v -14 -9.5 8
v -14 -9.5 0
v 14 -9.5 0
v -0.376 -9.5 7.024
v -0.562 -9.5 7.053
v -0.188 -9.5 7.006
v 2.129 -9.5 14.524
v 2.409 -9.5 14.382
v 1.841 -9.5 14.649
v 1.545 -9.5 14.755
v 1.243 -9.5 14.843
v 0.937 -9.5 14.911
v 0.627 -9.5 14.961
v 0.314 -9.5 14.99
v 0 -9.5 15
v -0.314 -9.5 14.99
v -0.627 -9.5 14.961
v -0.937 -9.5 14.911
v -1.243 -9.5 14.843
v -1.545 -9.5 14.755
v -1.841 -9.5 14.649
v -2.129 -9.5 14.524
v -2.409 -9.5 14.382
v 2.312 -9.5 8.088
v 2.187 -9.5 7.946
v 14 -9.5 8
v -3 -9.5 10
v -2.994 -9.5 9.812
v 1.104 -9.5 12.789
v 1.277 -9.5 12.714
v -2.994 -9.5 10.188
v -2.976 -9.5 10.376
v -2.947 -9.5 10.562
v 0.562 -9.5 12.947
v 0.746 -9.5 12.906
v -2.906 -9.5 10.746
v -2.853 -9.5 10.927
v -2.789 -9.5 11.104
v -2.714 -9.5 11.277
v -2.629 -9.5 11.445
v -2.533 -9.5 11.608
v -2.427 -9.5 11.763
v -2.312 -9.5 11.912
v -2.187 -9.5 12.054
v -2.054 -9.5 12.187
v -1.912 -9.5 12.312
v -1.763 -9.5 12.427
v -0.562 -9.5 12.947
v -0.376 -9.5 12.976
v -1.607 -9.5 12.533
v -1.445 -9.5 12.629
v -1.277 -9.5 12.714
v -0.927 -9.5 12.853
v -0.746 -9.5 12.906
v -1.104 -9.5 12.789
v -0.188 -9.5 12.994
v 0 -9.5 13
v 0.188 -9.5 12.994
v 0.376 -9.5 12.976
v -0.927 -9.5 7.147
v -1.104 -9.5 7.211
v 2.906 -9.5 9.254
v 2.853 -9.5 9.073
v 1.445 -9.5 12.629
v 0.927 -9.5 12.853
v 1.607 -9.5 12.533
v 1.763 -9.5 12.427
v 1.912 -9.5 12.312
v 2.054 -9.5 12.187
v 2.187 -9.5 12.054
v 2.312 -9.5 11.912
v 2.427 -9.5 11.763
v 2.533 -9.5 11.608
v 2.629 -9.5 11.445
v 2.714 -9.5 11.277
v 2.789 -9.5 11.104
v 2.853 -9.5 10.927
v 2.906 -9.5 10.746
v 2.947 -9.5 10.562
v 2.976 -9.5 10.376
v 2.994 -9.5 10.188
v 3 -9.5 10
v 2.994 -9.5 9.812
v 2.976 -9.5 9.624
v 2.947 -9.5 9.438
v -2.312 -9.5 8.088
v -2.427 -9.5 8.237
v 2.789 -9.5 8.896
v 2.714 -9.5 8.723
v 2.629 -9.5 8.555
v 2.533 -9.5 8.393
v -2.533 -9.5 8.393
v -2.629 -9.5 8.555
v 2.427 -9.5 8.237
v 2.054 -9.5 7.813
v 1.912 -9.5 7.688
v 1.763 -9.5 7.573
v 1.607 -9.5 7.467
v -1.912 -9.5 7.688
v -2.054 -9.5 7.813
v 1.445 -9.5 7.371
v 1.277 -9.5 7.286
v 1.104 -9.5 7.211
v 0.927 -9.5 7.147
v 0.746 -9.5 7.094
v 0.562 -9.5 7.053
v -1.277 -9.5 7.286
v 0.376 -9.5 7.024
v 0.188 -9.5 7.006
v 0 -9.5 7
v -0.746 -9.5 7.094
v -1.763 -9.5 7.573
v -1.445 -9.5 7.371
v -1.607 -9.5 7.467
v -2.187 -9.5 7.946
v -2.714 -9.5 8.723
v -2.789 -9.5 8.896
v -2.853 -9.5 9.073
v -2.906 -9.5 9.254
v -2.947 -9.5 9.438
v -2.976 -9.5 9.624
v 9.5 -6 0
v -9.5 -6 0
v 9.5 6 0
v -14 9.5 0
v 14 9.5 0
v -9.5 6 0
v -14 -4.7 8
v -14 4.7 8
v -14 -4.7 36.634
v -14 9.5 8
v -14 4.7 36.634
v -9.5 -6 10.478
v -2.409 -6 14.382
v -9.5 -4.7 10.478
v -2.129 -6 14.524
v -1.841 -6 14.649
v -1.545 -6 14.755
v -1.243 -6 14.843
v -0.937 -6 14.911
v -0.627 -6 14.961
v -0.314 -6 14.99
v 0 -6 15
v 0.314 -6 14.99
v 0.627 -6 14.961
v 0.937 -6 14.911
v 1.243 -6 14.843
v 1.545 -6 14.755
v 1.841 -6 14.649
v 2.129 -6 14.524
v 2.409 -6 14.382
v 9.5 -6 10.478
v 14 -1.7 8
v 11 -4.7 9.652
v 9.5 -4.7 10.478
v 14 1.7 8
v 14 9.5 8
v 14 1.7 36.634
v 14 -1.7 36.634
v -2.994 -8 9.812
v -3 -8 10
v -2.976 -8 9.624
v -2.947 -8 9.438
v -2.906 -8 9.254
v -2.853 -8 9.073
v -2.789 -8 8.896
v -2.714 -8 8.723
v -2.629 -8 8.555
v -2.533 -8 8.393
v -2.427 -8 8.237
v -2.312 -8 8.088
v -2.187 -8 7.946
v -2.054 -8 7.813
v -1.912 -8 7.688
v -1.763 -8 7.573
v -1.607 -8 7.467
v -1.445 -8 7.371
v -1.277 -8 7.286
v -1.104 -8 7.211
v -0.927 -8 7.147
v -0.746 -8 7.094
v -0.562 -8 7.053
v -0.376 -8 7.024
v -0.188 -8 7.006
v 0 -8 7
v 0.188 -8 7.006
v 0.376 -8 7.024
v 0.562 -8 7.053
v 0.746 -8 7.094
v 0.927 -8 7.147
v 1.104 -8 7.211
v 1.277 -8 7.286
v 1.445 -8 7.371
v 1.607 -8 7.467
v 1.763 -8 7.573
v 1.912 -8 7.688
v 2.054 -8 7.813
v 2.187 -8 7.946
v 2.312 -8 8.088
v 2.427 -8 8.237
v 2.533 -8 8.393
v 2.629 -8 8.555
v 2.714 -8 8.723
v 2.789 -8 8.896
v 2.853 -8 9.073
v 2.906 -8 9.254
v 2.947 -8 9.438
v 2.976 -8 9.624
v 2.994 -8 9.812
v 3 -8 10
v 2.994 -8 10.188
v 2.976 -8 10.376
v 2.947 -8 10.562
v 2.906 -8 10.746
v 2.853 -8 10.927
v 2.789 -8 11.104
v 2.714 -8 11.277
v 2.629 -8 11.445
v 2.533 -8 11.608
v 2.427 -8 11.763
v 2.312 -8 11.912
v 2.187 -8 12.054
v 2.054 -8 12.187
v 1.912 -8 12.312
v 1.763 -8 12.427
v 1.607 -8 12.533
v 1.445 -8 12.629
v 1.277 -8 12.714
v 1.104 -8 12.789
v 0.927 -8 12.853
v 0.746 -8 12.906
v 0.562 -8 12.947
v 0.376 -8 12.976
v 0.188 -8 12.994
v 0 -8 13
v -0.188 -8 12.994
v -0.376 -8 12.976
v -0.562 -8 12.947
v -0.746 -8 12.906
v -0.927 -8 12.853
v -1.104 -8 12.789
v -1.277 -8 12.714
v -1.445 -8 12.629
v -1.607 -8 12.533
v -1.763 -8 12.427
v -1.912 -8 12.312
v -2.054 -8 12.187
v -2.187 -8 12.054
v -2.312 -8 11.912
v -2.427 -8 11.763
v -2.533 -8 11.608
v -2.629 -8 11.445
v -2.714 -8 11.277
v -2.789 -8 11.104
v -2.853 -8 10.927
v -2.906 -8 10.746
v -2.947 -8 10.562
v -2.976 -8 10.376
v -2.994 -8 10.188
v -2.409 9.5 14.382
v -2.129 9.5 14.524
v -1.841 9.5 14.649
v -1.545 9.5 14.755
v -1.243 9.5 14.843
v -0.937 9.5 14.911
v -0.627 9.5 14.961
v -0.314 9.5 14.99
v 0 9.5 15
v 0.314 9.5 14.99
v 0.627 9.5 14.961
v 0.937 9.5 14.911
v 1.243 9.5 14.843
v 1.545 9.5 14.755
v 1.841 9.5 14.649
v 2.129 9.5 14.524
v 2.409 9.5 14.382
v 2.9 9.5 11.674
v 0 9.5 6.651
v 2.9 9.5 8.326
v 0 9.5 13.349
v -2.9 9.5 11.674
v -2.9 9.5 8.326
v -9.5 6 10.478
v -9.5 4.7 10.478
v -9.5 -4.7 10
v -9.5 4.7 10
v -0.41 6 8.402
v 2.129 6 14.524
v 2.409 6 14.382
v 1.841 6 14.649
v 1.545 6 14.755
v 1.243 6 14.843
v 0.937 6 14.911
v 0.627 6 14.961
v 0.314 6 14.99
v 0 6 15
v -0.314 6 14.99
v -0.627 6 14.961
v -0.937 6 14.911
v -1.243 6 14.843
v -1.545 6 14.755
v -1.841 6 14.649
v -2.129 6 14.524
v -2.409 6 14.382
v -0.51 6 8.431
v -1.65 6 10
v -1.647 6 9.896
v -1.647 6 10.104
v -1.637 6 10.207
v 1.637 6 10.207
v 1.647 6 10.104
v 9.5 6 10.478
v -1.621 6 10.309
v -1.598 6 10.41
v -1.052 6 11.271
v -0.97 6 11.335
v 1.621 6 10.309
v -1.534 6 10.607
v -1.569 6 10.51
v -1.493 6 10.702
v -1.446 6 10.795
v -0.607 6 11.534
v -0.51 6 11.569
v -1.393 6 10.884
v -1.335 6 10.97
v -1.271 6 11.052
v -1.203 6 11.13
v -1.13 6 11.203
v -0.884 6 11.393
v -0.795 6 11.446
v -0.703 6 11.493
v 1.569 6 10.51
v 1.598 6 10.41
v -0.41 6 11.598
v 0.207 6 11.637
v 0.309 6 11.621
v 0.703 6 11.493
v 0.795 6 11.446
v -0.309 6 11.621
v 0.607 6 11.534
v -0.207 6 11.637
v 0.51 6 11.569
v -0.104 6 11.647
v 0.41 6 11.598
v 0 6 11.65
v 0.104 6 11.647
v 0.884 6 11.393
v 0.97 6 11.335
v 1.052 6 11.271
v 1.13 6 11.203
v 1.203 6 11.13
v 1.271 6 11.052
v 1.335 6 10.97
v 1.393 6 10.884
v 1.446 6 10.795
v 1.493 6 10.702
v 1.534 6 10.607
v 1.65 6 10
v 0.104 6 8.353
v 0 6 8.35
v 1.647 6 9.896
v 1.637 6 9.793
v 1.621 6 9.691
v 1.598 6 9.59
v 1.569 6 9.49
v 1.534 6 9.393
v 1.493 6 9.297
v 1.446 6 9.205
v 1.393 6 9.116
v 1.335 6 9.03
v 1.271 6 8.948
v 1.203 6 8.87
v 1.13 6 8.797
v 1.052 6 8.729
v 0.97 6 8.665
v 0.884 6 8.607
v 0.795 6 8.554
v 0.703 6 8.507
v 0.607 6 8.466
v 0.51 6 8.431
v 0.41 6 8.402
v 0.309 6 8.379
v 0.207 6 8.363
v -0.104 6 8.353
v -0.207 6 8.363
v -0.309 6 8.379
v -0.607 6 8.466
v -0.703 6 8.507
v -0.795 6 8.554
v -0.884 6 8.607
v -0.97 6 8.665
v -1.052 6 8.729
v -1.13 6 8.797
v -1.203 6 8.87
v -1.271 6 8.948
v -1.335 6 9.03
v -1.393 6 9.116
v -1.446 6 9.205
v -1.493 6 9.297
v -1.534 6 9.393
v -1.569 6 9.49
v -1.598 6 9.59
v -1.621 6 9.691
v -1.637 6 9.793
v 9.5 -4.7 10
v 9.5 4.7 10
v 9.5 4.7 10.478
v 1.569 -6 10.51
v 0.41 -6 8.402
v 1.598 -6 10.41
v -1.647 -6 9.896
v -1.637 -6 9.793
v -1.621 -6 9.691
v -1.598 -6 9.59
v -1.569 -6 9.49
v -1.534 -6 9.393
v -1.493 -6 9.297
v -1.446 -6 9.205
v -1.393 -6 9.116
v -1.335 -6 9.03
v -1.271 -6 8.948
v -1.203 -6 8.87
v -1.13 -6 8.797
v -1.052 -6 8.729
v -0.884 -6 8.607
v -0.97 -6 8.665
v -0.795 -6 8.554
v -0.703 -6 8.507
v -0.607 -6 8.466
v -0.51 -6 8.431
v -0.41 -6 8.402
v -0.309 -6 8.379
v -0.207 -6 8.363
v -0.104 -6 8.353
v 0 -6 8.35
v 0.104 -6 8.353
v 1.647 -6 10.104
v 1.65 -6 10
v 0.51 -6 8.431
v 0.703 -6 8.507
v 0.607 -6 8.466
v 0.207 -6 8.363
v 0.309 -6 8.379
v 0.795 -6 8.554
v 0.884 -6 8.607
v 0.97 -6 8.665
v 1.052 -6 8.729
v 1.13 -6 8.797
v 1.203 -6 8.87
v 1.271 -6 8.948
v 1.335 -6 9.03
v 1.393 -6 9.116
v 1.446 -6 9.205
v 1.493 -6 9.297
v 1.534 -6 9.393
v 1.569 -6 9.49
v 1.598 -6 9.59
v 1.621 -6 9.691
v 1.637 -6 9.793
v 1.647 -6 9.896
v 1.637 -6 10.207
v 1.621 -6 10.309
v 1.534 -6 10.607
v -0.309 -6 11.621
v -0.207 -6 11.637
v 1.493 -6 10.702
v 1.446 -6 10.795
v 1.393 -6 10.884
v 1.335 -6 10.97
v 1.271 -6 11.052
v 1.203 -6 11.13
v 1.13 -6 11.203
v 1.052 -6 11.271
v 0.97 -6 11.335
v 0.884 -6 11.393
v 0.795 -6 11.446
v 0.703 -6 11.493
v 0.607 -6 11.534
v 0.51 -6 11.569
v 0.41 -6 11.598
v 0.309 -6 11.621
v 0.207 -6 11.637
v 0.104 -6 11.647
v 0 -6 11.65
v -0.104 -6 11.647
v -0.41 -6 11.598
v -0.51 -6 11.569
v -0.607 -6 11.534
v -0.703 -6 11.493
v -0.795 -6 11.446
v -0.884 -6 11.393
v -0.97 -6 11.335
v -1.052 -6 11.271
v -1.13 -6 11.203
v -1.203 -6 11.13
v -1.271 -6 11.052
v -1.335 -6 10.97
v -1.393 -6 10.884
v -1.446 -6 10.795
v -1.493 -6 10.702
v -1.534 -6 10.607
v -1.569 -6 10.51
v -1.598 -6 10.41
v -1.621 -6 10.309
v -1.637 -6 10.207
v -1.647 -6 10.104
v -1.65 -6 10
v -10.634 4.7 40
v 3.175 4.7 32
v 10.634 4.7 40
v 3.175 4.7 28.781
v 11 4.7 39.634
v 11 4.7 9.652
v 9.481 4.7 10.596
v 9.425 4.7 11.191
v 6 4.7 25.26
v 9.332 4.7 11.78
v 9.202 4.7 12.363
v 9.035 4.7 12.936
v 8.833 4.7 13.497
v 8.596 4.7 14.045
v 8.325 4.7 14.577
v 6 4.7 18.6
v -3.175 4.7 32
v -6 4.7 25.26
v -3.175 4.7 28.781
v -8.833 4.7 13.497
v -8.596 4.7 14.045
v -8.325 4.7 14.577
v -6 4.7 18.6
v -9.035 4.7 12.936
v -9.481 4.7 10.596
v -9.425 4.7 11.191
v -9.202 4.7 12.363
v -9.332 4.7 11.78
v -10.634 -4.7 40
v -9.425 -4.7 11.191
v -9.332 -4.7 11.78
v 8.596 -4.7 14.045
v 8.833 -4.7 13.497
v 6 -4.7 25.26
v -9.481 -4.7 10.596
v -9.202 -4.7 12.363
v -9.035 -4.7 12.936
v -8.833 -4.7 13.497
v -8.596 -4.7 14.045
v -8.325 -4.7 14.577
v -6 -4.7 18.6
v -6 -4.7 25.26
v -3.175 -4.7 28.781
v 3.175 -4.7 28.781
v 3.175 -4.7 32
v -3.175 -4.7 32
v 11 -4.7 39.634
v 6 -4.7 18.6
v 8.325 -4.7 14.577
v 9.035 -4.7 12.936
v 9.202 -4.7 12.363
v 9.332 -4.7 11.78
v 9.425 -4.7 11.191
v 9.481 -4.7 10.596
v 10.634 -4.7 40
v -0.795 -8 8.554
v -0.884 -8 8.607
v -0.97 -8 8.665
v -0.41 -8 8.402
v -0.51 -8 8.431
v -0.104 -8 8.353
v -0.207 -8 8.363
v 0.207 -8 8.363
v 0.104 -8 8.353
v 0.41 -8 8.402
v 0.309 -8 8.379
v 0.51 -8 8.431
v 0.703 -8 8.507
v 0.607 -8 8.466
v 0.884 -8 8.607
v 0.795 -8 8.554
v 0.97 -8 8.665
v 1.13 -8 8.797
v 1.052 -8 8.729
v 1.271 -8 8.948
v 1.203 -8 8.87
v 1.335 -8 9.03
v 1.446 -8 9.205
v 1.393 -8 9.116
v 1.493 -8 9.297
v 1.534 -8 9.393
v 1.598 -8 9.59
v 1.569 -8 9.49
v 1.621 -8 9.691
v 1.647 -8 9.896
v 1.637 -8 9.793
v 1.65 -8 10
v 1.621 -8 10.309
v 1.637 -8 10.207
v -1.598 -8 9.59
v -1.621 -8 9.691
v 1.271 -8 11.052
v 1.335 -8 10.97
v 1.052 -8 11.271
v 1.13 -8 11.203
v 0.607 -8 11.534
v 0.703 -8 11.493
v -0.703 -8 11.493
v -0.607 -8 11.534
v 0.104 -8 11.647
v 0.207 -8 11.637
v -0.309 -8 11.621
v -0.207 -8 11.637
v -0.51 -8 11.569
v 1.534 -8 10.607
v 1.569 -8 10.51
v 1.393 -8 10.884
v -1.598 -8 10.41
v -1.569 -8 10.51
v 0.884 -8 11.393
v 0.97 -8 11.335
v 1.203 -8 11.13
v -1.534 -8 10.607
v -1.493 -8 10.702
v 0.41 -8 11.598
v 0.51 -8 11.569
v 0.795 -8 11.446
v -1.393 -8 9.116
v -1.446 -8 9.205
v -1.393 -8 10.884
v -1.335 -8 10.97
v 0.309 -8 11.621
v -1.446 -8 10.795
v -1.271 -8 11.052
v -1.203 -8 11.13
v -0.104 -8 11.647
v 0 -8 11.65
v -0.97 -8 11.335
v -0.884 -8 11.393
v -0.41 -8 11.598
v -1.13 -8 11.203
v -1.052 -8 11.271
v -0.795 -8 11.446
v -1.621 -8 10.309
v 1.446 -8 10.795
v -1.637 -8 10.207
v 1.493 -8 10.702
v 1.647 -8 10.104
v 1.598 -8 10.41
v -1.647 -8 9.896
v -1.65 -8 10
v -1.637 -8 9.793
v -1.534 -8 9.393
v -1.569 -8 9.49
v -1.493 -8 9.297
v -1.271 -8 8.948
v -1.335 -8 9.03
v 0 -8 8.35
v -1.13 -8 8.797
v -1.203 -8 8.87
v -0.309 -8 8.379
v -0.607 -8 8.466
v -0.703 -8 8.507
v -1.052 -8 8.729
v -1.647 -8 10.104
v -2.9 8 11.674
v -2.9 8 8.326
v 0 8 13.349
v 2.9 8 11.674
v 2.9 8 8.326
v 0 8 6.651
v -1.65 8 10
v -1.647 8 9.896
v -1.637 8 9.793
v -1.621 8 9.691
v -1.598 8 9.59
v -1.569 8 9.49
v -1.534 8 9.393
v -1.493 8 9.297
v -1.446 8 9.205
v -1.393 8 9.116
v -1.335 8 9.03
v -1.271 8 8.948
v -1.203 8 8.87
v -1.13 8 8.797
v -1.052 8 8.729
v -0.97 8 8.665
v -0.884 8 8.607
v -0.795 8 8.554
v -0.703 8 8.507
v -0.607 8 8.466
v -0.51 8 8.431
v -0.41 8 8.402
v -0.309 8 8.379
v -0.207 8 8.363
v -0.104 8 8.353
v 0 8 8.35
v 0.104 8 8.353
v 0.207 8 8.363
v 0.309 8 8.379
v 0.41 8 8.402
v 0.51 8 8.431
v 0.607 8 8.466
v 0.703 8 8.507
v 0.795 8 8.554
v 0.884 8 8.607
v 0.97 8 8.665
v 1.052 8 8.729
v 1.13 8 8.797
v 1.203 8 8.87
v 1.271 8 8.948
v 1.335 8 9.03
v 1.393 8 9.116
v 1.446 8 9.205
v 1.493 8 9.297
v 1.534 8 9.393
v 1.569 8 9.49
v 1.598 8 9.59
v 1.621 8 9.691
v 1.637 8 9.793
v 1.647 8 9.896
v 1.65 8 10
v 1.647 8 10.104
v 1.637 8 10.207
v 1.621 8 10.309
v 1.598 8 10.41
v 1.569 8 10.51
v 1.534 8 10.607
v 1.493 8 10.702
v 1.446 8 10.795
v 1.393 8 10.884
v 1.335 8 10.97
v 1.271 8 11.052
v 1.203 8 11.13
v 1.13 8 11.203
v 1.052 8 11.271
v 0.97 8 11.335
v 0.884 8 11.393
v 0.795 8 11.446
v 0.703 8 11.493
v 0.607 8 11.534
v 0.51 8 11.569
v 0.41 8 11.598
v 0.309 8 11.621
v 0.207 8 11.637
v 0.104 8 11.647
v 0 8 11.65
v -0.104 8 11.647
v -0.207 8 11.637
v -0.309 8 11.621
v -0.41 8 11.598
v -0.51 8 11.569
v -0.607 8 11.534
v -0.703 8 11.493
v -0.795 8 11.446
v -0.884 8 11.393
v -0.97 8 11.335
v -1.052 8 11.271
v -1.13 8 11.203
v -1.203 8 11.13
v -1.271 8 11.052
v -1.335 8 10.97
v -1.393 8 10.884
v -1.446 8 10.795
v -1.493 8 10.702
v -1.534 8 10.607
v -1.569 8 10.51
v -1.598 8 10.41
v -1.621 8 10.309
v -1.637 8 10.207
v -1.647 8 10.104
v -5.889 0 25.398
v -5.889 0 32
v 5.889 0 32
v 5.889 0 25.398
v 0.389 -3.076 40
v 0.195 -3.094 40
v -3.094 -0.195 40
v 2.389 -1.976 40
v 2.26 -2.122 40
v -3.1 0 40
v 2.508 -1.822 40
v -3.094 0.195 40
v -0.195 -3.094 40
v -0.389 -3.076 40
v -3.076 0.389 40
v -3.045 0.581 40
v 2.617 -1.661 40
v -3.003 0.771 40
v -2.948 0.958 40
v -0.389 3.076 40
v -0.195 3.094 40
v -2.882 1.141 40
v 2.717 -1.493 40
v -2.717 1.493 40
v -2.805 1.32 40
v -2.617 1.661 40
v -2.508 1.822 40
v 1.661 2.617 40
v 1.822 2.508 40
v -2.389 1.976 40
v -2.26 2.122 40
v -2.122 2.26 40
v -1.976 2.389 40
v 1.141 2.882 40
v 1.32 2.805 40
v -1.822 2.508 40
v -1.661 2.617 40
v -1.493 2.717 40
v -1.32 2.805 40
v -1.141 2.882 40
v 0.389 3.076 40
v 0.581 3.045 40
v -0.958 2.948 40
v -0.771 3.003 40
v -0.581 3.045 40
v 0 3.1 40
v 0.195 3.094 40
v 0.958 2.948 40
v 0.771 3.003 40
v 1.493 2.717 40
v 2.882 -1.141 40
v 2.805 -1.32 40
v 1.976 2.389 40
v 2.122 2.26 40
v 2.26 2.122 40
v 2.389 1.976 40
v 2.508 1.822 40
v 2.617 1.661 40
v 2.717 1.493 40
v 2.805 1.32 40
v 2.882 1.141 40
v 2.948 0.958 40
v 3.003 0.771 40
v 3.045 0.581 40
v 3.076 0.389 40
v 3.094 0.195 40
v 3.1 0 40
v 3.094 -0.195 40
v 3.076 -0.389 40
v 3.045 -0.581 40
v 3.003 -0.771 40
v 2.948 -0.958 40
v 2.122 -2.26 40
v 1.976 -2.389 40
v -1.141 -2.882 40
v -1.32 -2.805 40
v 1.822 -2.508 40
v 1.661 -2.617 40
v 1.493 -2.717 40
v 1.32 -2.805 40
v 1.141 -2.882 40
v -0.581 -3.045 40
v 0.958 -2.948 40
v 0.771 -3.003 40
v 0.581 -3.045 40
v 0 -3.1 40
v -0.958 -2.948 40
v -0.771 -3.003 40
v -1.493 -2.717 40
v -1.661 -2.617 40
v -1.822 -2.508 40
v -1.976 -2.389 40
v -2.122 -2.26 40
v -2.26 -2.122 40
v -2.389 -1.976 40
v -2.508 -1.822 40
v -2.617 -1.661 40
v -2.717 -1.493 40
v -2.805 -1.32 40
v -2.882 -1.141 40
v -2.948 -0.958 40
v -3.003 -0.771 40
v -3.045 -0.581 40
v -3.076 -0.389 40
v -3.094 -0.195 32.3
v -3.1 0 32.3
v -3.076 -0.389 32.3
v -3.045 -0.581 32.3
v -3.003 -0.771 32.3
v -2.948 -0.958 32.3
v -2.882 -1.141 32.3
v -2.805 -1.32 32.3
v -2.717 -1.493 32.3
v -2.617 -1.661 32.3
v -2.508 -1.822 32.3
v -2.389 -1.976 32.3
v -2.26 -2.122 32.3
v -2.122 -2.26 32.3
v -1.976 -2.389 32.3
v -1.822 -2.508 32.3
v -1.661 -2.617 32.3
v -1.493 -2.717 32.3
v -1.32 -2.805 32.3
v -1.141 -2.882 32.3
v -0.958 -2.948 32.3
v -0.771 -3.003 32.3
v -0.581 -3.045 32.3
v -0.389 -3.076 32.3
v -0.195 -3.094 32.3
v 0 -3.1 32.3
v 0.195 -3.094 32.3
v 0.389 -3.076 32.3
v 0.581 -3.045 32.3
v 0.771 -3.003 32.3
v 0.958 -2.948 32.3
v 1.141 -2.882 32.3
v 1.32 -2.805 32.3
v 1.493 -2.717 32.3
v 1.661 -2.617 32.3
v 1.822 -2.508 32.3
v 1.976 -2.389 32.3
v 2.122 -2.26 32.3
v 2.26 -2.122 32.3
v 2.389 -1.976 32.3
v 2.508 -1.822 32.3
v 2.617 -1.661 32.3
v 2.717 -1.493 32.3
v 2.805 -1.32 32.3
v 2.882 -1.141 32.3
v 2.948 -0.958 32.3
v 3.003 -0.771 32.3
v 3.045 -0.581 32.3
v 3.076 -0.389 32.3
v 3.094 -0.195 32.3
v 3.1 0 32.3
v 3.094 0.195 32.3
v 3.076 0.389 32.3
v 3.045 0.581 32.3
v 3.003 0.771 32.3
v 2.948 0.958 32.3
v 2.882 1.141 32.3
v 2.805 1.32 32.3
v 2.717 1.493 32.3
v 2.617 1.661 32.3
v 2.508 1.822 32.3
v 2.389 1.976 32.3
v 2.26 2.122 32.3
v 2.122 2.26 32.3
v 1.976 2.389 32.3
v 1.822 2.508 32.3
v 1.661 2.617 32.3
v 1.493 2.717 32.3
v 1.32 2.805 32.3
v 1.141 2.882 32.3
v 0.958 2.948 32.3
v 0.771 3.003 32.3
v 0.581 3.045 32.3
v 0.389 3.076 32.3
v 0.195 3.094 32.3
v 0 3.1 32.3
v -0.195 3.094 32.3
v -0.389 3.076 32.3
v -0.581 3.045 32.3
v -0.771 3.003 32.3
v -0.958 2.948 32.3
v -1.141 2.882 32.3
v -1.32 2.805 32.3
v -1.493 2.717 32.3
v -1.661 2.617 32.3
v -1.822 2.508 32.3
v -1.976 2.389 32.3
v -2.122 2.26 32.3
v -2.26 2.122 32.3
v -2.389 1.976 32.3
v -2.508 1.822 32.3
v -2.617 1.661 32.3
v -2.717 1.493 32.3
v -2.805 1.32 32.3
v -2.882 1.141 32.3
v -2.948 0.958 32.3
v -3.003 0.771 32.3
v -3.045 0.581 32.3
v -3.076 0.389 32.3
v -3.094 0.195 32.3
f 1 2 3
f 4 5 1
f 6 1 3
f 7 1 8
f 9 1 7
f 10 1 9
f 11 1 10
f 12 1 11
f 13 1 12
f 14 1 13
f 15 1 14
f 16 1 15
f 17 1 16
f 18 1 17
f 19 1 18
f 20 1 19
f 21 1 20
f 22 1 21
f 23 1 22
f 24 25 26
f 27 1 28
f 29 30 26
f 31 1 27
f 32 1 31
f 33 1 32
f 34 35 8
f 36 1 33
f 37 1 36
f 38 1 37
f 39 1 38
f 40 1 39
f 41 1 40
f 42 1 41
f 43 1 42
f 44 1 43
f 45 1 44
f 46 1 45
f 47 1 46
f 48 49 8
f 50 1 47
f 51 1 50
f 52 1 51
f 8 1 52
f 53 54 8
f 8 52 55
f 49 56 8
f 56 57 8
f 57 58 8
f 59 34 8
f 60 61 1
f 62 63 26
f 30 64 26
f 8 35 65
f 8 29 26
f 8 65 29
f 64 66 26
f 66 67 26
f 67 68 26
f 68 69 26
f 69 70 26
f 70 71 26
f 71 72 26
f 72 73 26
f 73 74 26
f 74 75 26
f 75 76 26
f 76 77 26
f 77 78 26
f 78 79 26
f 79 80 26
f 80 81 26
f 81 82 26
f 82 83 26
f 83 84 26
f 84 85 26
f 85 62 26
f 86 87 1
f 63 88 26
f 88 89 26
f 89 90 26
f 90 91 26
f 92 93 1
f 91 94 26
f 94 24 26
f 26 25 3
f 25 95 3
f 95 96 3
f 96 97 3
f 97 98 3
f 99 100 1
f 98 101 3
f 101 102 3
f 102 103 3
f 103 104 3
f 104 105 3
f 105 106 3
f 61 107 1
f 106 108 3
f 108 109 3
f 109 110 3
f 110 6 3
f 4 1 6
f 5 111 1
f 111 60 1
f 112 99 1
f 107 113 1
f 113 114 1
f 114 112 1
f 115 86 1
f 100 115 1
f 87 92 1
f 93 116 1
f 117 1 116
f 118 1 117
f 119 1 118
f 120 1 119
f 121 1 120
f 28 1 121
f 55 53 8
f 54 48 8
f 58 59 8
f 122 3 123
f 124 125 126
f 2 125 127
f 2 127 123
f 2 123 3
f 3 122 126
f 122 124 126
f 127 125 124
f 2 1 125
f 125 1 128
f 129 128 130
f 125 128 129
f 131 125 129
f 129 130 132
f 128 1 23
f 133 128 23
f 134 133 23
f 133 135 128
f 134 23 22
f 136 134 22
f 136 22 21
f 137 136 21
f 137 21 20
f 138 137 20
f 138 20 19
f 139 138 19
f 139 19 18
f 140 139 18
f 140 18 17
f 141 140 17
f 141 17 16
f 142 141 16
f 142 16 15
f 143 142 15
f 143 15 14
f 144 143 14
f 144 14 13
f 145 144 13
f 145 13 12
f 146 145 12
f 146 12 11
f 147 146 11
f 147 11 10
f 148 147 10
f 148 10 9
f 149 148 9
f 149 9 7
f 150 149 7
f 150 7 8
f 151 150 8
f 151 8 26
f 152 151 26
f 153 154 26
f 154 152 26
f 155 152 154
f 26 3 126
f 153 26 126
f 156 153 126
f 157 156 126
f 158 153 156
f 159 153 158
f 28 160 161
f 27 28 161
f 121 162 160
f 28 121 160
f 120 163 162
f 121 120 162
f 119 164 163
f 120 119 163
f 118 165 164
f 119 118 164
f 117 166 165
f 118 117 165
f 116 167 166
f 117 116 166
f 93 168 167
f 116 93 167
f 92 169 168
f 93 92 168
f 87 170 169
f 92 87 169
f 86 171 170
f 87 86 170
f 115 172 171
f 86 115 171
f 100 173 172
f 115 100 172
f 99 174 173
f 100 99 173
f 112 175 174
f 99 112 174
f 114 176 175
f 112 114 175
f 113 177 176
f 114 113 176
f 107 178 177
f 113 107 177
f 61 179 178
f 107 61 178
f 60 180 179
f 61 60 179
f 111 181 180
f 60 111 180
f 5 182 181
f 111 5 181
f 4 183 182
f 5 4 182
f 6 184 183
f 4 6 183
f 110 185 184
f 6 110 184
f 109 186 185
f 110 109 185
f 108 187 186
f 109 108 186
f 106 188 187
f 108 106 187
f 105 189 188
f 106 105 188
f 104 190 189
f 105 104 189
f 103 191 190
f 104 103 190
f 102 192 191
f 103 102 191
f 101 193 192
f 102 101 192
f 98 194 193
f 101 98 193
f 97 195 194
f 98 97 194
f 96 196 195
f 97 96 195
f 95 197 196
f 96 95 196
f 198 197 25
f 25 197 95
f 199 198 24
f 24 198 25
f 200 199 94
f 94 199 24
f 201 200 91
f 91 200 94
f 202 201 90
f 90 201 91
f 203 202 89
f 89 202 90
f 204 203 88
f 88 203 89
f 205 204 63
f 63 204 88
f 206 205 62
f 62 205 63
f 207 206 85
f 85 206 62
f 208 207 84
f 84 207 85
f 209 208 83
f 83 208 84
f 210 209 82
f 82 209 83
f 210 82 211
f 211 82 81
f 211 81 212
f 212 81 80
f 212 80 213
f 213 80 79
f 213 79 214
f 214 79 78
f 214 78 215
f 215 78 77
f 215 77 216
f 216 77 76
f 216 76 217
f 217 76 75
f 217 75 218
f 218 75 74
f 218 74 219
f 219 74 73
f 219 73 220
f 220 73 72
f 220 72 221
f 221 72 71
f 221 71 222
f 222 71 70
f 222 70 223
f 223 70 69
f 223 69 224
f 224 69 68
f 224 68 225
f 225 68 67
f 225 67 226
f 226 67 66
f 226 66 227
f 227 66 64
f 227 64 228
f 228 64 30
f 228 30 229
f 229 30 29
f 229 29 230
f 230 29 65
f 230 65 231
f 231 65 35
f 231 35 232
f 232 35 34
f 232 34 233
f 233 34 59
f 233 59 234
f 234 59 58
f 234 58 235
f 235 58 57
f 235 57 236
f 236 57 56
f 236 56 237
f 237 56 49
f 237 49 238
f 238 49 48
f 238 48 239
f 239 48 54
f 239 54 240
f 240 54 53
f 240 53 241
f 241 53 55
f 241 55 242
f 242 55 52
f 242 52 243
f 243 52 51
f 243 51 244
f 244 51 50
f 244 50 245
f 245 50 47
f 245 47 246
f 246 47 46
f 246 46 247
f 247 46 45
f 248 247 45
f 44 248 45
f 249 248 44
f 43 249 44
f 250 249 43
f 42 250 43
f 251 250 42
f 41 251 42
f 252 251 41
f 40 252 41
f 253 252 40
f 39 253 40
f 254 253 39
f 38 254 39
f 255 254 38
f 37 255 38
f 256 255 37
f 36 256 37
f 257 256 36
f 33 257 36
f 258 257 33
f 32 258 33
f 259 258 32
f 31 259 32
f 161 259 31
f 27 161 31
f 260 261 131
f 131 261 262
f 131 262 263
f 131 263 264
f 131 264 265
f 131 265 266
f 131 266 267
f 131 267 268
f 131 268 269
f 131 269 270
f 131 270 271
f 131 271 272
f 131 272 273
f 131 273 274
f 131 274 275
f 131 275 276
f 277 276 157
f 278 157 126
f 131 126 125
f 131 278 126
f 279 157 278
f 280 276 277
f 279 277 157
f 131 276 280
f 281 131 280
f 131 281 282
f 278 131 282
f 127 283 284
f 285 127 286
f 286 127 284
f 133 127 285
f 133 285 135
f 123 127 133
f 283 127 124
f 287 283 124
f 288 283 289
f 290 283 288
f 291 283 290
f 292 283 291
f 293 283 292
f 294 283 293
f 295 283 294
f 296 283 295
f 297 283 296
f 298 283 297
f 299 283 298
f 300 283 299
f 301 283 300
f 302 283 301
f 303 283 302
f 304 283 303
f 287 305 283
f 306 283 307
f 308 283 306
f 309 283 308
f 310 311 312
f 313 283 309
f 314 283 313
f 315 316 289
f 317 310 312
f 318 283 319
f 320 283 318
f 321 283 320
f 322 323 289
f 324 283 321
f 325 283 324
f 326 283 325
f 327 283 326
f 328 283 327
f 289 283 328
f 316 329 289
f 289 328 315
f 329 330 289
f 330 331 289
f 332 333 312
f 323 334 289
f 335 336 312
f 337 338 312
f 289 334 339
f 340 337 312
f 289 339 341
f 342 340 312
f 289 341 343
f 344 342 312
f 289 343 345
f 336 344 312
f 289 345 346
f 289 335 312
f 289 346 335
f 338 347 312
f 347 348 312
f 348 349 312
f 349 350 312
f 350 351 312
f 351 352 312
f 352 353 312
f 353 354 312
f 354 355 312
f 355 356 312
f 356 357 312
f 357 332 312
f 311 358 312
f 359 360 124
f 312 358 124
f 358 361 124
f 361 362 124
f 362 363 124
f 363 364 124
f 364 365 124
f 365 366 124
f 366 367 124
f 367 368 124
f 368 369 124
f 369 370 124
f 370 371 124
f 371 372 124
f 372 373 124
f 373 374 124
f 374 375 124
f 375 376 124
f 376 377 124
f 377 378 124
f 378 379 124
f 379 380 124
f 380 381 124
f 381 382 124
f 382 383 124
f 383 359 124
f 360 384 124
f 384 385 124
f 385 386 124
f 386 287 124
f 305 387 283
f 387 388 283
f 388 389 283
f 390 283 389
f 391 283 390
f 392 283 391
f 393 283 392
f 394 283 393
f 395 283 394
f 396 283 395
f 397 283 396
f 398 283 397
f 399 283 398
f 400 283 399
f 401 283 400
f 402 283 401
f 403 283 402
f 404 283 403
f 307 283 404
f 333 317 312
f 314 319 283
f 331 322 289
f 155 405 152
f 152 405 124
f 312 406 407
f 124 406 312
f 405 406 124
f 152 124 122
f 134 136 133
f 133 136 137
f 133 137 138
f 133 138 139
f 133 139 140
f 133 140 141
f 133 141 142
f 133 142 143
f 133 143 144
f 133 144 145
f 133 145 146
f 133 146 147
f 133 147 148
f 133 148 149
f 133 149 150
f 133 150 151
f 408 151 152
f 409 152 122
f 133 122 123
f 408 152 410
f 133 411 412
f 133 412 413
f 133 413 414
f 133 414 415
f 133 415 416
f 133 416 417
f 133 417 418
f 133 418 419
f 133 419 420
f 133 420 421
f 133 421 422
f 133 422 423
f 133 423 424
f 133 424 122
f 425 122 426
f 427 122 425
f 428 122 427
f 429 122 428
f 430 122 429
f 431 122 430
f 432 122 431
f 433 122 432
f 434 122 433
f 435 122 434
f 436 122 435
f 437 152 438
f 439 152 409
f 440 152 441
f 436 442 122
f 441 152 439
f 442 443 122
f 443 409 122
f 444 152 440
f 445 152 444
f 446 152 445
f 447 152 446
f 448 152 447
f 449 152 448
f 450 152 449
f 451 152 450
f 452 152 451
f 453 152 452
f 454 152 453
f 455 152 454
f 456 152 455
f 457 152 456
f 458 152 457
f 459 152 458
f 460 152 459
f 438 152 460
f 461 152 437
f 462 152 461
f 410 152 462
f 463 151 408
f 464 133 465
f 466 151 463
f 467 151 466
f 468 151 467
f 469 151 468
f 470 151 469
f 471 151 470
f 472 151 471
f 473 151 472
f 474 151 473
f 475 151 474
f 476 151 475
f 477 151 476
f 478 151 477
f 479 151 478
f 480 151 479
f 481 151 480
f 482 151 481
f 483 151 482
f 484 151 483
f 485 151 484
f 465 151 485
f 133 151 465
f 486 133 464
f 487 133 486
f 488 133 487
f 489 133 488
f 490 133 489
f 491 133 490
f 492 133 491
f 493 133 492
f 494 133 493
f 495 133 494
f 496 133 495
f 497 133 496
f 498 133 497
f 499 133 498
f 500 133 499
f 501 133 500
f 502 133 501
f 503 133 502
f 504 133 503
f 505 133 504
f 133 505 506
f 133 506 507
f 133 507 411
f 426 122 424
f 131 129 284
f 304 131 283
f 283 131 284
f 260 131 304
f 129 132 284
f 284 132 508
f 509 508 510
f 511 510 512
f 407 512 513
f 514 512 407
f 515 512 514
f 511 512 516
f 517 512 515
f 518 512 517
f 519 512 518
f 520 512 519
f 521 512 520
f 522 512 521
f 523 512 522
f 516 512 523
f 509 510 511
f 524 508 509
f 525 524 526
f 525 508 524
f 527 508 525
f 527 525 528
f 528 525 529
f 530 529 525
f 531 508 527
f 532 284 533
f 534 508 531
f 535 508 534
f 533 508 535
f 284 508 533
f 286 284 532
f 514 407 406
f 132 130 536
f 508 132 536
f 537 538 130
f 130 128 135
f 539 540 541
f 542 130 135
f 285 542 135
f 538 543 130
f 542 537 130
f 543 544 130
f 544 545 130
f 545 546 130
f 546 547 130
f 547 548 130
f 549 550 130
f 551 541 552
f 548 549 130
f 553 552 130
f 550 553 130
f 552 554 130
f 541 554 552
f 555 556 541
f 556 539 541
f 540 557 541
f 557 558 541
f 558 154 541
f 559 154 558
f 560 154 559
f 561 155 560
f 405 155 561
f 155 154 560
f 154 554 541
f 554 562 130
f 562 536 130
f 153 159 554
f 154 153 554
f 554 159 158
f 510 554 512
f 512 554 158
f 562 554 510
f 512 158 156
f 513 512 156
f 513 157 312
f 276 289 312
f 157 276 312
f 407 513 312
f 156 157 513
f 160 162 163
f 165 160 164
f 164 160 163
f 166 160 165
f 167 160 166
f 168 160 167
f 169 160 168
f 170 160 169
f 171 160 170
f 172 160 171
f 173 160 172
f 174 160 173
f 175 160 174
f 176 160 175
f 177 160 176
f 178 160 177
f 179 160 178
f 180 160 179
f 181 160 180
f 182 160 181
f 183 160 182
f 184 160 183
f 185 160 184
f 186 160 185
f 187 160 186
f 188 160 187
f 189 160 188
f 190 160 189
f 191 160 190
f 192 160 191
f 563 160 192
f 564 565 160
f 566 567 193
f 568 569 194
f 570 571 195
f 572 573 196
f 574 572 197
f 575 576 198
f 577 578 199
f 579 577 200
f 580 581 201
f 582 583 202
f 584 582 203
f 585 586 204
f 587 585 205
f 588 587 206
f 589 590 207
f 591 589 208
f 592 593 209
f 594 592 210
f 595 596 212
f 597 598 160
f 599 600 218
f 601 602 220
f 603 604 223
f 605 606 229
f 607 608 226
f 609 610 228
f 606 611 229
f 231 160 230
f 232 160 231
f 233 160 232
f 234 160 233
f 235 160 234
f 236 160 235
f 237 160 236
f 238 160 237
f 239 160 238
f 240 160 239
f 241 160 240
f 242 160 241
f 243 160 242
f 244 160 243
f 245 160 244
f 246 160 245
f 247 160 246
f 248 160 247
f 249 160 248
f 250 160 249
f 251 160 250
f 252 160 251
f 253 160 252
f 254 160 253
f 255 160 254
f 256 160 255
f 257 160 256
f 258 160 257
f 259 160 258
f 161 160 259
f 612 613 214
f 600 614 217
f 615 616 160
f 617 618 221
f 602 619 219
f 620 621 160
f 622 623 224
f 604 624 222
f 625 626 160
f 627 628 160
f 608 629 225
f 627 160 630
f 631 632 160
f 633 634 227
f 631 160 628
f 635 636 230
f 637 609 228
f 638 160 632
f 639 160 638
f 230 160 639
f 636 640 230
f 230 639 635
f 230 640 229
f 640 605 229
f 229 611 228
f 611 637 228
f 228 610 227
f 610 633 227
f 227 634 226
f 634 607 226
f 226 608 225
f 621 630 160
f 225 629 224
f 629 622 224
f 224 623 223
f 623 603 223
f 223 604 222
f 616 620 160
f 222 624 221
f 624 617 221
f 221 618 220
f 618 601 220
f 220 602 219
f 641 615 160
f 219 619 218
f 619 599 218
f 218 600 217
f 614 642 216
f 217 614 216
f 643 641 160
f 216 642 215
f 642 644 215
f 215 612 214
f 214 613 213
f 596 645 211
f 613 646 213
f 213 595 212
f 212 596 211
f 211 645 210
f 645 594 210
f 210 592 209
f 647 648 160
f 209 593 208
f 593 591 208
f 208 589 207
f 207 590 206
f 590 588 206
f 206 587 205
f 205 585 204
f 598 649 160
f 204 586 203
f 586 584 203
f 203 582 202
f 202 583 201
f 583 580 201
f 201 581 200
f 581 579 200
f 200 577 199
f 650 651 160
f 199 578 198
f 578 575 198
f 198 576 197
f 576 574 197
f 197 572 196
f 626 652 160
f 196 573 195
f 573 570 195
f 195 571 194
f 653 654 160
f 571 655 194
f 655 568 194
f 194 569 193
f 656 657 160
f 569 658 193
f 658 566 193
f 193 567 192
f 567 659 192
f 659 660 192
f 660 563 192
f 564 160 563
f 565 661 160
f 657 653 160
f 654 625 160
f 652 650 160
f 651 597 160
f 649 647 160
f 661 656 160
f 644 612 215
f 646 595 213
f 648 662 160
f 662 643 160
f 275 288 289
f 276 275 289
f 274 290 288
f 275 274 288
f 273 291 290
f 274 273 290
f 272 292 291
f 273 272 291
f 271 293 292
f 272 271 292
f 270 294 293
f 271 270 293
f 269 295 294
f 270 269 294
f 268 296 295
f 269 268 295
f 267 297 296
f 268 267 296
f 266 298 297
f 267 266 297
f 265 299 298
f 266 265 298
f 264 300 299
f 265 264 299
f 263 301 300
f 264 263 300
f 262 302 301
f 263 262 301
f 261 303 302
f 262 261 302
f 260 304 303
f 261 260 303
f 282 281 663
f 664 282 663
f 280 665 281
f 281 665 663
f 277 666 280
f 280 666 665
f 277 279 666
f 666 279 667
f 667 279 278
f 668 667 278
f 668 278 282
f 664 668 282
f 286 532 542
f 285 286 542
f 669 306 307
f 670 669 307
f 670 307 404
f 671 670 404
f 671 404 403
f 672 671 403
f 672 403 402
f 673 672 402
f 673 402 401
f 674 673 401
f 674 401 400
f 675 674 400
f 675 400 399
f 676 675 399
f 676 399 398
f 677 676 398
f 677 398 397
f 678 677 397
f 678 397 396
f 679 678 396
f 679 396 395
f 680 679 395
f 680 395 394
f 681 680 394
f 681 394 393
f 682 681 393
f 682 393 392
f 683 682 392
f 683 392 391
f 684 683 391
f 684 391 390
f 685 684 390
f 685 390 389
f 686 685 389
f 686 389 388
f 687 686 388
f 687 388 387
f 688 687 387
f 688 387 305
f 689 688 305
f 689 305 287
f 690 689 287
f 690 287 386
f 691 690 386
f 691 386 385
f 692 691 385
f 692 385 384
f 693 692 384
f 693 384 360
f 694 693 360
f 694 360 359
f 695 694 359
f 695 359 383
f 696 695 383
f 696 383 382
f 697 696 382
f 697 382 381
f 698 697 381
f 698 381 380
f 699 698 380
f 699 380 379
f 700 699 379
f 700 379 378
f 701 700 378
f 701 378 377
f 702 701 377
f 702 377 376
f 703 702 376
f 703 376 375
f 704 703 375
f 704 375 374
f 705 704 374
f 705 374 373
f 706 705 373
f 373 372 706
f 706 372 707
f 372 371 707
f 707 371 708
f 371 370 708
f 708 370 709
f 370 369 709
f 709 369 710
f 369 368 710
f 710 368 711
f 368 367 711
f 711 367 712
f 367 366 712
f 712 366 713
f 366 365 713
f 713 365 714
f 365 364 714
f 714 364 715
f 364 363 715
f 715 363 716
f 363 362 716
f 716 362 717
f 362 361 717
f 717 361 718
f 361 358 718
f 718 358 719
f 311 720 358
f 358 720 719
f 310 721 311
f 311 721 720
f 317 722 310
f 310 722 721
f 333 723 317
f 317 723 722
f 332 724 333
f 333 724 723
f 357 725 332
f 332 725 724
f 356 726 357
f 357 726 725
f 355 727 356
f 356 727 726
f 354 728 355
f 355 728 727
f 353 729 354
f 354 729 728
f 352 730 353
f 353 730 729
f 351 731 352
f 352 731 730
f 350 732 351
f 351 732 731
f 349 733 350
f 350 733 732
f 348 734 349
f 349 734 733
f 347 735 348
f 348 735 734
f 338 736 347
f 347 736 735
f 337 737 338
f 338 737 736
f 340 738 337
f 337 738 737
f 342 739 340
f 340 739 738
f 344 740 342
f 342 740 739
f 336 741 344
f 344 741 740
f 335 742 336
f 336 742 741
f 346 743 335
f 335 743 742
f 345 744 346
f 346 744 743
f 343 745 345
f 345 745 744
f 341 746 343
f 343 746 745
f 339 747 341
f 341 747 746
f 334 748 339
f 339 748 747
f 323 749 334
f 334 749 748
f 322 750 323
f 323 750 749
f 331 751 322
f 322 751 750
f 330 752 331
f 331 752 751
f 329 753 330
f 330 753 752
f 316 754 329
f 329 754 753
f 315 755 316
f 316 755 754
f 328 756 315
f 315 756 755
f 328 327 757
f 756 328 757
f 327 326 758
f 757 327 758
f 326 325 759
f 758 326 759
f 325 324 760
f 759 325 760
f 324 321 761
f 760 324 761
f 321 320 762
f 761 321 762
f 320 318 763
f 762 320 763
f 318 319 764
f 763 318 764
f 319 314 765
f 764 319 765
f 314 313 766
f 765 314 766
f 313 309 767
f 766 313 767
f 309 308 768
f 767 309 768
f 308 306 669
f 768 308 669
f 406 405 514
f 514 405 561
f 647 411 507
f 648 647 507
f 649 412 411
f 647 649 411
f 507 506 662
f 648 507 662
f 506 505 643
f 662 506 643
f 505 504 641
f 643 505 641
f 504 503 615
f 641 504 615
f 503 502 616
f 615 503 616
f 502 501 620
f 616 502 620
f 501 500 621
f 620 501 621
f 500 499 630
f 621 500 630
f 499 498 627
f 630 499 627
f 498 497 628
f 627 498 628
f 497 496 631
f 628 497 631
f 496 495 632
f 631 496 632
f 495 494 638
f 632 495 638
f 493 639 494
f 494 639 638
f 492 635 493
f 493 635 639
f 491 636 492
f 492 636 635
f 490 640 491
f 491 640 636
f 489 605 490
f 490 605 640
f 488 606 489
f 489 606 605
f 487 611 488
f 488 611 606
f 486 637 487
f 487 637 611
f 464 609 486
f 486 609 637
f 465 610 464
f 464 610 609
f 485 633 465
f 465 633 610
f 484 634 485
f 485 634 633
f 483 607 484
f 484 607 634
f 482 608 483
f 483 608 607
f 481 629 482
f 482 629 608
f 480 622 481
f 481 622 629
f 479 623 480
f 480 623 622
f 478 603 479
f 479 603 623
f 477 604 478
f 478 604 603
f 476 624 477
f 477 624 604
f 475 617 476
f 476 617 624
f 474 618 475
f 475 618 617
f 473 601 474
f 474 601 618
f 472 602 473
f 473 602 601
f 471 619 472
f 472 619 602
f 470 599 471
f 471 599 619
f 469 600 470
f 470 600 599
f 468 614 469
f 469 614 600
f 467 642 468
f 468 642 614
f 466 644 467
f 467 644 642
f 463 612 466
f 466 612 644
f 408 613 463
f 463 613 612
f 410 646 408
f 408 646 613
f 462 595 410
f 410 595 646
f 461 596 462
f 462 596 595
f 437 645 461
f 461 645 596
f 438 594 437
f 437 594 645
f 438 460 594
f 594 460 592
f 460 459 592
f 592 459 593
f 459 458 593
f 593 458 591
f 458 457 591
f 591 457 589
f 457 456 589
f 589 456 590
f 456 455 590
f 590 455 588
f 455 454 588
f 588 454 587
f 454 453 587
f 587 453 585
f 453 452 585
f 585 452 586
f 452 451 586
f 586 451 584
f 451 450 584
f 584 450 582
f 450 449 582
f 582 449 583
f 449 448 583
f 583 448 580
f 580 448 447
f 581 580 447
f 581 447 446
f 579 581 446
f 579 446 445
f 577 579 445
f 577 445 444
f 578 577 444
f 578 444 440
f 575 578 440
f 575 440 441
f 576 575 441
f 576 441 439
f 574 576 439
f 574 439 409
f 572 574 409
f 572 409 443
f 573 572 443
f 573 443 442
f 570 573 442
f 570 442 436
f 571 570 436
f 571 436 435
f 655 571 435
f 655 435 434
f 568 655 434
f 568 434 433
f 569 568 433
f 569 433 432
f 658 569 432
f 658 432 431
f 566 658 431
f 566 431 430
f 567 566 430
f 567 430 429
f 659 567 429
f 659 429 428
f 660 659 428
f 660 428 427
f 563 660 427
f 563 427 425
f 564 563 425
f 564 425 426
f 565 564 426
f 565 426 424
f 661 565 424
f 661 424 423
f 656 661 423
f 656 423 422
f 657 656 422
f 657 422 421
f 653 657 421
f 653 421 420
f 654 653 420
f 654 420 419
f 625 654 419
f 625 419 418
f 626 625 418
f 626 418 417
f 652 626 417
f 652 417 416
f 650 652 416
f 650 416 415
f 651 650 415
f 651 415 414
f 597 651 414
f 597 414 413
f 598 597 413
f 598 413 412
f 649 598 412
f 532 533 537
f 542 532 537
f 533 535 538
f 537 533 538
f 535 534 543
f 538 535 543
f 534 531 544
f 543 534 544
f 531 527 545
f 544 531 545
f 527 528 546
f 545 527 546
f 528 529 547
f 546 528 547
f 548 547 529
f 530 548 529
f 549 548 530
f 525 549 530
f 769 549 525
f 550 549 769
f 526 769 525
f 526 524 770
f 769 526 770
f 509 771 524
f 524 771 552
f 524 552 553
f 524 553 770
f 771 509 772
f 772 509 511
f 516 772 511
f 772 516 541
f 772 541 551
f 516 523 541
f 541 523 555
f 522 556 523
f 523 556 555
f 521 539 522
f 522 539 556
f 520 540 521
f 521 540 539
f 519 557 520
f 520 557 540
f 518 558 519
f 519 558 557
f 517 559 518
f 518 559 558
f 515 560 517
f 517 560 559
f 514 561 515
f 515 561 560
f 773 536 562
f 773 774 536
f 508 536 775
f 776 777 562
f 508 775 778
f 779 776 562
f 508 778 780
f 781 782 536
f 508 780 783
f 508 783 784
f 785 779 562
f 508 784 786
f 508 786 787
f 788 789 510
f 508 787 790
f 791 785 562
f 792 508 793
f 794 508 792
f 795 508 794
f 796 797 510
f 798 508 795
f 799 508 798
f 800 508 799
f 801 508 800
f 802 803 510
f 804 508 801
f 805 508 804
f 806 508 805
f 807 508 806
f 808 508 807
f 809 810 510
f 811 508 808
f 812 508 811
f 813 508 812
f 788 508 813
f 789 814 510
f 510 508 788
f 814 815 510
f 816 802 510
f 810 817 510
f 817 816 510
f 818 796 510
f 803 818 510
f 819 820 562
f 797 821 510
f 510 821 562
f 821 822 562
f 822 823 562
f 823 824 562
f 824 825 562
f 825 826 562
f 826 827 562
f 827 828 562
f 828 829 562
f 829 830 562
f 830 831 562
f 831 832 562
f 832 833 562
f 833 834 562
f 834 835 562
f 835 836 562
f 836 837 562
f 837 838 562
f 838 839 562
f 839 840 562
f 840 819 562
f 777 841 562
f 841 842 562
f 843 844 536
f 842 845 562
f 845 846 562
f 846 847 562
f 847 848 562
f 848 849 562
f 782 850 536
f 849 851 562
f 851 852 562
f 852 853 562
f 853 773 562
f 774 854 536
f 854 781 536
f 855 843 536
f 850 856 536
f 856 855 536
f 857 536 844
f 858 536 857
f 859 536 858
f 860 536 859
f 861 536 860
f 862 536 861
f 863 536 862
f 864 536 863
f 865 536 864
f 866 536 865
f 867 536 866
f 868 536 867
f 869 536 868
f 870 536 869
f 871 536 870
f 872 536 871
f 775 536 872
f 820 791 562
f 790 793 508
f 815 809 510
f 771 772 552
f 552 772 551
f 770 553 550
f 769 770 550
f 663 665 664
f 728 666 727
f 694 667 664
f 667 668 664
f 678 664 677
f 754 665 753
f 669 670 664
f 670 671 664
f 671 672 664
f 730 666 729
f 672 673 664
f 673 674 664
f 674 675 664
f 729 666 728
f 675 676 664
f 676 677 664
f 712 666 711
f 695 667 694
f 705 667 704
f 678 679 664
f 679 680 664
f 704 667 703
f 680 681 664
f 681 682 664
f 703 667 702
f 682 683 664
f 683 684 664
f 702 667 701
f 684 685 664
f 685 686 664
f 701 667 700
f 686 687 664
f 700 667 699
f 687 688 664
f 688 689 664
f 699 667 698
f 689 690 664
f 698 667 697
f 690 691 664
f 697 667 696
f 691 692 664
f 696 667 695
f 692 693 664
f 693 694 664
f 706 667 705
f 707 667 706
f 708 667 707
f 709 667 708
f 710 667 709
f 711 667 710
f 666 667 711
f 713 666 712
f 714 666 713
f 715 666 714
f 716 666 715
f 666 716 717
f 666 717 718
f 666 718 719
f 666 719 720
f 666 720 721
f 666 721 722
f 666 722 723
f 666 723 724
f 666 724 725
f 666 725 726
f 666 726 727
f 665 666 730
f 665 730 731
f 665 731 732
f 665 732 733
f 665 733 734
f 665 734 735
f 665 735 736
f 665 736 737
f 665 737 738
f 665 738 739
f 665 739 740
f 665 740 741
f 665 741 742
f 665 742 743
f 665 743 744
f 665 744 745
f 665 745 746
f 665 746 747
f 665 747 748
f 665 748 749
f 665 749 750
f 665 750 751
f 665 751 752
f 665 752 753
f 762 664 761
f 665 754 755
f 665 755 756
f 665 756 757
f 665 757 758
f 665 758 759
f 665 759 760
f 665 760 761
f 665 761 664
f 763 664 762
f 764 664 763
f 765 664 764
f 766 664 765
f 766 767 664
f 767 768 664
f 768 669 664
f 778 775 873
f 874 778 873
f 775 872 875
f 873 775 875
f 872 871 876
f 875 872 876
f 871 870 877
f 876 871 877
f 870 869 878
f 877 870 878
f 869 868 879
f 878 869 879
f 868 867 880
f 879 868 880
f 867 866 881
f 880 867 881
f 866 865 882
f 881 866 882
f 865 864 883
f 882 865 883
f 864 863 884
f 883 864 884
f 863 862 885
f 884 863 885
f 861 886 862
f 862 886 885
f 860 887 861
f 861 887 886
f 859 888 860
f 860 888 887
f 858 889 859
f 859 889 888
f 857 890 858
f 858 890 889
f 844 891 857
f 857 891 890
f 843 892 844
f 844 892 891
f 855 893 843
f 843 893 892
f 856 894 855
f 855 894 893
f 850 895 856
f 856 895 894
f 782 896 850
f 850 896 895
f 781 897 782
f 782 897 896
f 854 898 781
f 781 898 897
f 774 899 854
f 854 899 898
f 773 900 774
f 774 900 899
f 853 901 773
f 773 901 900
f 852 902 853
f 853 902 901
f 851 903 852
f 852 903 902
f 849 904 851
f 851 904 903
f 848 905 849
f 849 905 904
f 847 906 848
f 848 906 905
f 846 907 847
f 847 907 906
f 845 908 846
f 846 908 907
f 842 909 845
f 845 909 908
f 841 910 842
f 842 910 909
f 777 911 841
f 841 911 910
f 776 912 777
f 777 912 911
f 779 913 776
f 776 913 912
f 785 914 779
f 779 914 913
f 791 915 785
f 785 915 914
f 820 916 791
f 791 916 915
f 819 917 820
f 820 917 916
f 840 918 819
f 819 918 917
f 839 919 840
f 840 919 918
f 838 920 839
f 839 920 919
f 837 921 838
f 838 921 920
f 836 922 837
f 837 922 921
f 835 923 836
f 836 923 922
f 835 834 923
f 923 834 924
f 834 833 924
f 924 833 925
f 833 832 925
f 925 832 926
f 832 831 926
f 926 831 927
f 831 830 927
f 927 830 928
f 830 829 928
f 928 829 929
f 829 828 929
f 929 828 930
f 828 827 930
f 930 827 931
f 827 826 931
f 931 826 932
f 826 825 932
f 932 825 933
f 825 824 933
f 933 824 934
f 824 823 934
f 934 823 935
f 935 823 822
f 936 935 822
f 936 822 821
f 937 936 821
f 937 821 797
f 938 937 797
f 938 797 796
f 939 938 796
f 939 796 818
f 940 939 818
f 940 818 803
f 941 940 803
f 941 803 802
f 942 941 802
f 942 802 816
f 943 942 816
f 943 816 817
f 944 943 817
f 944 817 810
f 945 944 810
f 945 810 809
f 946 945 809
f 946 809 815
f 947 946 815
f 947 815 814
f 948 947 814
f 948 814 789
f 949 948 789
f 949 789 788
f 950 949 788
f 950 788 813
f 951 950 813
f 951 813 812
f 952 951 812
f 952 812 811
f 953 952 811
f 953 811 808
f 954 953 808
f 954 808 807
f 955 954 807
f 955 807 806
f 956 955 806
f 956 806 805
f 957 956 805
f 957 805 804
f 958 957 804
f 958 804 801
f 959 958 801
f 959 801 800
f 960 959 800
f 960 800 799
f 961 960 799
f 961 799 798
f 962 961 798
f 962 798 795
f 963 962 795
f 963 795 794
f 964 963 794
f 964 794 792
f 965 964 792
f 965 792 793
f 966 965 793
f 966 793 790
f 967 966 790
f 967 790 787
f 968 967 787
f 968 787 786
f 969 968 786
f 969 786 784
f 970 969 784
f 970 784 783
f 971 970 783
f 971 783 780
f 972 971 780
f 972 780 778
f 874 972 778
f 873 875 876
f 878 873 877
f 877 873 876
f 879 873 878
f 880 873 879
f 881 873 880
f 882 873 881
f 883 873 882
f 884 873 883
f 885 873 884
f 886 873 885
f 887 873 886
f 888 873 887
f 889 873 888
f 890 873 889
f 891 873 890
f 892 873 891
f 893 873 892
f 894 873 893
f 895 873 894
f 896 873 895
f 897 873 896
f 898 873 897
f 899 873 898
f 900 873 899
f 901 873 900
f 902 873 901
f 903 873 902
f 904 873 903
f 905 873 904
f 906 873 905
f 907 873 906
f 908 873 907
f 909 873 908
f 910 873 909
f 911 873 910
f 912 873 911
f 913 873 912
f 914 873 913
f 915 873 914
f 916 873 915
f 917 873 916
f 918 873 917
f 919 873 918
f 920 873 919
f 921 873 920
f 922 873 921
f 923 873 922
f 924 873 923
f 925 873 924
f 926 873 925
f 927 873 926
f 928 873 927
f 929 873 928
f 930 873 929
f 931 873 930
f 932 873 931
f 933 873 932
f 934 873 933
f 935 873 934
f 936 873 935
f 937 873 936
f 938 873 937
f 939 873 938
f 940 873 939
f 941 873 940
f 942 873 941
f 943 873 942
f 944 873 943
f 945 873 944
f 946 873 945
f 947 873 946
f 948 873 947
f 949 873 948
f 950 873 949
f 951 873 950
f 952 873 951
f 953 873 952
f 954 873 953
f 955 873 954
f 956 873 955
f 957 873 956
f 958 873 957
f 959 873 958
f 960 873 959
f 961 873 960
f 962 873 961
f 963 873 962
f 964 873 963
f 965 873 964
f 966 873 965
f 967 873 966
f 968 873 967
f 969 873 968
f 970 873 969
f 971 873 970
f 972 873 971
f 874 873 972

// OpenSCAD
// file: PowerCode_Config.scad
// Global configuration file of PowerCode
// By J.Rodigo (www.jrodrigo.net)
// Licence Creative commons atribution & share alike.
// Author: Mecano ( https://github.com/Mecan0/Code )

//*************************************************//
//       Parámetros de configuración global        //
//*************************************************//

// Resolución de las superficies curvas
$fn = 100 ;		

// Cojinetes Lineales
dCoLi = 15 ;	// Diámetro LM8UU(15) IGUS(16)

// Varillas lisas
dVaLi = 8.15 ; // Diámetro




//*************************************************//
//              Módulos de uso global              //
//*************************************************//

// Generar un hexágono circunscrito (Diámetro,altura) 
module hexagono(d,h){ 
	for (a = [0, 60,120]){ 
		rotate( a, [0, 0, 1])
		cube([d, d*tan(30), h], center = true);
	}
}

// Generar un cuadrado/chaflán a 45º (Arista,Altura,Giro{0 = 45º, 1 = 135º, ...}) 
module chamfer(a,h,g){ 
	rotate( g*90 + 45 , [0, 0, 1])
	cube([a, a, h]);
}
// main file
// Created from Code_Xend_Idler_B_623_M6.stl
// https://github.com/Mecan0/Code
// By J.Rodigo (www.jodrigo.net)
// Licence Creative commons atribution & share alike.

include <PowerCode_Config.scad>;

/**************************/
// Parámetros de la pieza  /
/**************************/

dTor = 6.2 ; 	// Diámetro del tornillo del tensor (6.2)

// Los dos taladros del soporte para el tornillo de la polea
dToSo = 3.3 ;	// Diámetro del taladro (3.3)
dToCh = 6 ; 	// Diámetro del zócalo (6)
dToTu = 5.8 ; 	// Tamaño de la tuerca (5.8)

// Tuerca del tensor
hTuTen = 10.2 ;		// Distancia entre caras de la tuerca (10.2)

// Creamos la mitad de la base
module mbase(){
	// Redondeo y chaflan mediante el comando hull
	hull(){
		// Bloque de la base
		translate([-14, -9.5, 0])
		cube([28, 9.5, 8]);
		// Redondeo superior 
		translate([0, 0, 10])
		rotate( 90, [1, 0, 0])
		cylinder(h = 9.5, r = 5);	
	}
}

// Operaciones para la media base
module mbaseope(){
	// Vaciado interior
	translate([-9.5, -6, -1])
	cube([19, 7, 17]);
	// Taladro para el tornillo
	translate([0, -5, 10])
	rotate( 90, [1, 0, 0])
	cylinder(h = 5, r = dToSo/2);
}

// Base de la pieza
module base(){
	difference(){
		union(){
			// Media base en -Y 
			mbase();
			// Media base en +Y
			mirror([ 0, 1, 0 ])
			mbase();
		}
		union(){
			// Media parte de las operaciones en -Y 
			mbaseope();
			// Media parte de las operaciones en +Y 
			mirror([ 0, 1, 0 ])
			mbaseope();
			// Zócalo para la cabeza del tornillo
			translate([0, 9.5, 10])
			rotate( 90, [1, 0, 0])
			hexagono(dToTu,3);
			// Zócalo para la tuerca
			translate([0, -10, 10])
			rotate( -90, [1, 0, 0])
			cylinder(h = 2, r = dToCh/2);
		}
	}
}

// Medio soporte
module msoporte(){
	difference(){
		// Bloque principal del soporte
		translate([0, -4.7, 0])
		cube([14, 9.4, 40]);
		// Chaflán superior del soporte
		translate([10.634, -6, 40])
		rotate( 45 , [0, 1, 0])
		cube([5, 12, 5]);
	}
}

module msoporteope(){
	// Parte inferior redondeada
	hull(){
		// Bloque inferior
		translate([-1, -6, -1])
		cube([10.5, 12, 10]);
		// Redondeo interior 
		translate([0, 6, 10])
		rotate( 90, [1, 0, 0])
		cylinder(h = 12, r = 9.5);	
		// Bloque del medio
		translate([-1, -6, 17.6])
		cube([7, 12, 1]);
	}
	// Parte superior con chaflán
	hull(){
		// Bloque del medio
		translate([-1, -6, -1])
		cube([7, 12, 31.26-5]);
		// Bloque superior
		translate([-1, -6, 31-3])
		cube([6-2, 12, 1]);
	}
	
}

//Alojamiento para el tornillo del tensor
module tornillotensor(){
			rotate( 90, [0, 0, 1])
			translate([0, 0, 28])
			hexagono(hTuTen,8);
}

// Base de la pieza
module soporte(){
	difference(){
		union(){
			// Medio soporte en +X 
			msoporte();
			// Medio soporte en -X 
			mirror([ 1, 0, 0 ])
			msoporte();
		}
		union(){
			// Media parte de las operaciones en +X
			msoporteope();
			// Chaflanes a lo largo del eje Z
			translate([14, 1.7, 0])
			chamfer(5,41,0);
			translate([14, -1.7, 0])
			chamfer(5,41,2);
			// Media parte de las operaciones en -X 
			mirror([ 1, 0, 0 ])
			msoporteope();
			// Alojamiento del tornillo tensor
			tornillotensor();
			// Taladro superior para el tensado
			translate([0, 0, 32 + 0.3]) // Se añade un 0.3 para poder imprimir el puente
			cylinder(h = 10, r = dTor/2);
		}
	}
}

// Unimos la base y el soporte para crear la pieza
module pieza(){
	base();
	soporte();
}

// Generamos la pieza!!

	pieza();
